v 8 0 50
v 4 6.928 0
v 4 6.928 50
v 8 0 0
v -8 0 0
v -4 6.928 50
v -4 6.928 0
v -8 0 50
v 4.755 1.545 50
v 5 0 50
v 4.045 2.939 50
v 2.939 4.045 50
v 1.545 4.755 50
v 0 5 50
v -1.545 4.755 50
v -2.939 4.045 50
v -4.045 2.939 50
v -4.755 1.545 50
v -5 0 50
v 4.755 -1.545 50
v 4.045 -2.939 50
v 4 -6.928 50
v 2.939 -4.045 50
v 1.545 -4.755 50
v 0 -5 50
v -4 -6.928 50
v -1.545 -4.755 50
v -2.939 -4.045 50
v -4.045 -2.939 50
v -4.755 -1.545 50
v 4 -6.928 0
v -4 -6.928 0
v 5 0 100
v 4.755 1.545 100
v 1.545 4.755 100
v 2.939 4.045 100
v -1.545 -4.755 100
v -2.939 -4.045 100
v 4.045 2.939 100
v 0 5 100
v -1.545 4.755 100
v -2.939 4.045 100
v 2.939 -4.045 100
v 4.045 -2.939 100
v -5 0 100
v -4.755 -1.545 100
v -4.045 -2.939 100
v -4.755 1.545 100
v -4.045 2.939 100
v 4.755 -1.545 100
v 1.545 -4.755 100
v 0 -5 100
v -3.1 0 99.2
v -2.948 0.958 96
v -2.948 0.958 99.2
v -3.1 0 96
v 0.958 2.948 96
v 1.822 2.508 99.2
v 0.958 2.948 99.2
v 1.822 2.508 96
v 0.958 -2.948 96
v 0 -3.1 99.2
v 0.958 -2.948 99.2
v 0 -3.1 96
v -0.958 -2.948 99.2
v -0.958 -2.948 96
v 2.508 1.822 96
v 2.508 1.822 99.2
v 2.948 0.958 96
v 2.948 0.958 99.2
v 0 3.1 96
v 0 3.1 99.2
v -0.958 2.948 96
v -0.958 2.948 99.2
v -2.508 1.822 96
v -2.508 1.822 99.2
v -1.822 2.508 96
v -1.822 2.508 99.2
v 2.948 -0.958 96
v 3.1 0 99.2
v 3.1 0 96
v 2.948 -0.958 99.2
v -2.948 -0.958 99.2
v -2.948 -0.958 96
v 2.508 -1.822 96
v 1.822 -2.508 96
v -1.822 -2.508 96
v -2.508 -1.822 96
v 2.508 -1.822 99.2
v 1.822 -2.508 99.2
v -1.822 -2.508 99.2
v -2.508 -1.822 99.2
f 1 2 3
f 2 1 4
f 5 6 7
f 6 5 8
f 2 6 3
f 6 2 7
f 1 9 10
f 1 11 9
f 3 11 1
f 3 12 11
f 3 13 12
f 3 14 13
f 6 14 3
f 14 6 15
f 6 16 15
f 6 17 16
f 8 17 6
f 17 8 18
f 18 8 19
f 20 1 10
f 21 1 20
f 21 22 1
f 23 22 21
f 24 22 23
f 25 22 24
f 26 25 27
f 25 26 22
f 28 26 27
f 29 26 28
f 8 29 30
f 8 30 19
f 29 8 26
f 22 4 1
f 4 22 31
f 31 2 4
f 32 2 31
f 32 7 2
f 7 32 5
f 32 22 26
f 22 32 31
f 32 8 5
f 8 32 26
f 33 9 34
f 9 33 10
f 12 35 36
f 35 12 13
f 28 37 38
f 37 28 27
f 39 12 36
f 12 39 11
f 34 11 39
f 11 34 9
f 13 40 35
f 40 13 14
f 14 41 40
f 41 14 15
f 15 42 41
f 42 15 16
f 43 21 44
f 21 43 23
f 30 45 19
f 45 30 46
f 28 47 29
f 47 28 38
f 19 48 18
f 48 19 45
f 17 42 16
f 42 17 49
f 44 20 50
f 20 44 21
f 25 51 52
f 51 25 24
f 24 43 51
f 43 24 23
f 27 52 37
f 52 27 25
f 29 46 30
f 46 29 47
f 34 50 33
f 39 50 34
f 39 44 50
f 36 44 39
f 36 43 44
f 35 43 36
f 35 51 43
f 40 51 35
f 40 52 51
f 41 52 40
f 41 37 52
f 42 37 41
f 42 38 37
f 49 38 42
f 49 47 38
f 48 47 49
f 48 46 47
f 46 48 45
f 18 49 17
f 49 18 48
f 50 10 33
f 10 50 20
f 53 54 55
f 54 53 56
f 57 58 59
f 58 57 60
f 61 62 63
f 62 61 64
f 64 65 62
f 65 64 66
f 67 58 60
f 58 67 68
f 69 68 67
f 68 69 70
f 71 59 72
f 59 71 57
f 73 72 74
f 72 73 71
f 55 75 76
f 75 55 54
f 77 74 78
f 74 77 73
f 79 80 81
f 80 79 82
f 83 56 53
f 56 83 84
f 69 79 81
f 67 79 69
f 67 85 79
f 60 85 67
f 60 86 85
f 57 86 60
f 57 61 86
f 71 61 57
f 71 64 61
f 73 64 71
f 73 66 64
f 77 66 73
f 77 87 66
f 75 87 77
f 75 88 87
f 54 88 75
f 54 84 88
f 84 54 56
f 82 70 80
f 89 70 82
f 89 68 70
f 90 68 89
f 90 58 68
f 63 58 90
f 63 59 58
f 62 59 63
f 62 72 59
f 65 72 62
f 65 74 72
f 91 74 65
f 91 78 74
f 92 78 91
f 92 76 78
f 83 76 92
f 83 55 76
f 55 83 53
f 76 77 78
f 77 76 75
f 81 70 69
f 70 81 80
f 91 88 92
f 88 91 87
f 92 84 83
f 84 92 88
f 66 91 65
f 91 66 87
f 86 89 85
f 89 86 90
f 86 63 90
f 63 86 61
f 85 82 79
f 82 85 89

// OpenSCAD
stick(size=[10, 100], magnet=[6, 3], $fn=20);

module stick(size, magnet, tolerance = .2) {
  difference() {
    union() {
      cylinder(d=size[0] * 1.6, h=size[1] / 2, $fn=6);
      cylinder(d=size[0], h=size[1]);
    }
    translate([0, 0, size[1] - magnet[1] - 1]) cylinder(d=magnet[0] + tolerance, h=magnet[1] + tolerance);
  }
}
